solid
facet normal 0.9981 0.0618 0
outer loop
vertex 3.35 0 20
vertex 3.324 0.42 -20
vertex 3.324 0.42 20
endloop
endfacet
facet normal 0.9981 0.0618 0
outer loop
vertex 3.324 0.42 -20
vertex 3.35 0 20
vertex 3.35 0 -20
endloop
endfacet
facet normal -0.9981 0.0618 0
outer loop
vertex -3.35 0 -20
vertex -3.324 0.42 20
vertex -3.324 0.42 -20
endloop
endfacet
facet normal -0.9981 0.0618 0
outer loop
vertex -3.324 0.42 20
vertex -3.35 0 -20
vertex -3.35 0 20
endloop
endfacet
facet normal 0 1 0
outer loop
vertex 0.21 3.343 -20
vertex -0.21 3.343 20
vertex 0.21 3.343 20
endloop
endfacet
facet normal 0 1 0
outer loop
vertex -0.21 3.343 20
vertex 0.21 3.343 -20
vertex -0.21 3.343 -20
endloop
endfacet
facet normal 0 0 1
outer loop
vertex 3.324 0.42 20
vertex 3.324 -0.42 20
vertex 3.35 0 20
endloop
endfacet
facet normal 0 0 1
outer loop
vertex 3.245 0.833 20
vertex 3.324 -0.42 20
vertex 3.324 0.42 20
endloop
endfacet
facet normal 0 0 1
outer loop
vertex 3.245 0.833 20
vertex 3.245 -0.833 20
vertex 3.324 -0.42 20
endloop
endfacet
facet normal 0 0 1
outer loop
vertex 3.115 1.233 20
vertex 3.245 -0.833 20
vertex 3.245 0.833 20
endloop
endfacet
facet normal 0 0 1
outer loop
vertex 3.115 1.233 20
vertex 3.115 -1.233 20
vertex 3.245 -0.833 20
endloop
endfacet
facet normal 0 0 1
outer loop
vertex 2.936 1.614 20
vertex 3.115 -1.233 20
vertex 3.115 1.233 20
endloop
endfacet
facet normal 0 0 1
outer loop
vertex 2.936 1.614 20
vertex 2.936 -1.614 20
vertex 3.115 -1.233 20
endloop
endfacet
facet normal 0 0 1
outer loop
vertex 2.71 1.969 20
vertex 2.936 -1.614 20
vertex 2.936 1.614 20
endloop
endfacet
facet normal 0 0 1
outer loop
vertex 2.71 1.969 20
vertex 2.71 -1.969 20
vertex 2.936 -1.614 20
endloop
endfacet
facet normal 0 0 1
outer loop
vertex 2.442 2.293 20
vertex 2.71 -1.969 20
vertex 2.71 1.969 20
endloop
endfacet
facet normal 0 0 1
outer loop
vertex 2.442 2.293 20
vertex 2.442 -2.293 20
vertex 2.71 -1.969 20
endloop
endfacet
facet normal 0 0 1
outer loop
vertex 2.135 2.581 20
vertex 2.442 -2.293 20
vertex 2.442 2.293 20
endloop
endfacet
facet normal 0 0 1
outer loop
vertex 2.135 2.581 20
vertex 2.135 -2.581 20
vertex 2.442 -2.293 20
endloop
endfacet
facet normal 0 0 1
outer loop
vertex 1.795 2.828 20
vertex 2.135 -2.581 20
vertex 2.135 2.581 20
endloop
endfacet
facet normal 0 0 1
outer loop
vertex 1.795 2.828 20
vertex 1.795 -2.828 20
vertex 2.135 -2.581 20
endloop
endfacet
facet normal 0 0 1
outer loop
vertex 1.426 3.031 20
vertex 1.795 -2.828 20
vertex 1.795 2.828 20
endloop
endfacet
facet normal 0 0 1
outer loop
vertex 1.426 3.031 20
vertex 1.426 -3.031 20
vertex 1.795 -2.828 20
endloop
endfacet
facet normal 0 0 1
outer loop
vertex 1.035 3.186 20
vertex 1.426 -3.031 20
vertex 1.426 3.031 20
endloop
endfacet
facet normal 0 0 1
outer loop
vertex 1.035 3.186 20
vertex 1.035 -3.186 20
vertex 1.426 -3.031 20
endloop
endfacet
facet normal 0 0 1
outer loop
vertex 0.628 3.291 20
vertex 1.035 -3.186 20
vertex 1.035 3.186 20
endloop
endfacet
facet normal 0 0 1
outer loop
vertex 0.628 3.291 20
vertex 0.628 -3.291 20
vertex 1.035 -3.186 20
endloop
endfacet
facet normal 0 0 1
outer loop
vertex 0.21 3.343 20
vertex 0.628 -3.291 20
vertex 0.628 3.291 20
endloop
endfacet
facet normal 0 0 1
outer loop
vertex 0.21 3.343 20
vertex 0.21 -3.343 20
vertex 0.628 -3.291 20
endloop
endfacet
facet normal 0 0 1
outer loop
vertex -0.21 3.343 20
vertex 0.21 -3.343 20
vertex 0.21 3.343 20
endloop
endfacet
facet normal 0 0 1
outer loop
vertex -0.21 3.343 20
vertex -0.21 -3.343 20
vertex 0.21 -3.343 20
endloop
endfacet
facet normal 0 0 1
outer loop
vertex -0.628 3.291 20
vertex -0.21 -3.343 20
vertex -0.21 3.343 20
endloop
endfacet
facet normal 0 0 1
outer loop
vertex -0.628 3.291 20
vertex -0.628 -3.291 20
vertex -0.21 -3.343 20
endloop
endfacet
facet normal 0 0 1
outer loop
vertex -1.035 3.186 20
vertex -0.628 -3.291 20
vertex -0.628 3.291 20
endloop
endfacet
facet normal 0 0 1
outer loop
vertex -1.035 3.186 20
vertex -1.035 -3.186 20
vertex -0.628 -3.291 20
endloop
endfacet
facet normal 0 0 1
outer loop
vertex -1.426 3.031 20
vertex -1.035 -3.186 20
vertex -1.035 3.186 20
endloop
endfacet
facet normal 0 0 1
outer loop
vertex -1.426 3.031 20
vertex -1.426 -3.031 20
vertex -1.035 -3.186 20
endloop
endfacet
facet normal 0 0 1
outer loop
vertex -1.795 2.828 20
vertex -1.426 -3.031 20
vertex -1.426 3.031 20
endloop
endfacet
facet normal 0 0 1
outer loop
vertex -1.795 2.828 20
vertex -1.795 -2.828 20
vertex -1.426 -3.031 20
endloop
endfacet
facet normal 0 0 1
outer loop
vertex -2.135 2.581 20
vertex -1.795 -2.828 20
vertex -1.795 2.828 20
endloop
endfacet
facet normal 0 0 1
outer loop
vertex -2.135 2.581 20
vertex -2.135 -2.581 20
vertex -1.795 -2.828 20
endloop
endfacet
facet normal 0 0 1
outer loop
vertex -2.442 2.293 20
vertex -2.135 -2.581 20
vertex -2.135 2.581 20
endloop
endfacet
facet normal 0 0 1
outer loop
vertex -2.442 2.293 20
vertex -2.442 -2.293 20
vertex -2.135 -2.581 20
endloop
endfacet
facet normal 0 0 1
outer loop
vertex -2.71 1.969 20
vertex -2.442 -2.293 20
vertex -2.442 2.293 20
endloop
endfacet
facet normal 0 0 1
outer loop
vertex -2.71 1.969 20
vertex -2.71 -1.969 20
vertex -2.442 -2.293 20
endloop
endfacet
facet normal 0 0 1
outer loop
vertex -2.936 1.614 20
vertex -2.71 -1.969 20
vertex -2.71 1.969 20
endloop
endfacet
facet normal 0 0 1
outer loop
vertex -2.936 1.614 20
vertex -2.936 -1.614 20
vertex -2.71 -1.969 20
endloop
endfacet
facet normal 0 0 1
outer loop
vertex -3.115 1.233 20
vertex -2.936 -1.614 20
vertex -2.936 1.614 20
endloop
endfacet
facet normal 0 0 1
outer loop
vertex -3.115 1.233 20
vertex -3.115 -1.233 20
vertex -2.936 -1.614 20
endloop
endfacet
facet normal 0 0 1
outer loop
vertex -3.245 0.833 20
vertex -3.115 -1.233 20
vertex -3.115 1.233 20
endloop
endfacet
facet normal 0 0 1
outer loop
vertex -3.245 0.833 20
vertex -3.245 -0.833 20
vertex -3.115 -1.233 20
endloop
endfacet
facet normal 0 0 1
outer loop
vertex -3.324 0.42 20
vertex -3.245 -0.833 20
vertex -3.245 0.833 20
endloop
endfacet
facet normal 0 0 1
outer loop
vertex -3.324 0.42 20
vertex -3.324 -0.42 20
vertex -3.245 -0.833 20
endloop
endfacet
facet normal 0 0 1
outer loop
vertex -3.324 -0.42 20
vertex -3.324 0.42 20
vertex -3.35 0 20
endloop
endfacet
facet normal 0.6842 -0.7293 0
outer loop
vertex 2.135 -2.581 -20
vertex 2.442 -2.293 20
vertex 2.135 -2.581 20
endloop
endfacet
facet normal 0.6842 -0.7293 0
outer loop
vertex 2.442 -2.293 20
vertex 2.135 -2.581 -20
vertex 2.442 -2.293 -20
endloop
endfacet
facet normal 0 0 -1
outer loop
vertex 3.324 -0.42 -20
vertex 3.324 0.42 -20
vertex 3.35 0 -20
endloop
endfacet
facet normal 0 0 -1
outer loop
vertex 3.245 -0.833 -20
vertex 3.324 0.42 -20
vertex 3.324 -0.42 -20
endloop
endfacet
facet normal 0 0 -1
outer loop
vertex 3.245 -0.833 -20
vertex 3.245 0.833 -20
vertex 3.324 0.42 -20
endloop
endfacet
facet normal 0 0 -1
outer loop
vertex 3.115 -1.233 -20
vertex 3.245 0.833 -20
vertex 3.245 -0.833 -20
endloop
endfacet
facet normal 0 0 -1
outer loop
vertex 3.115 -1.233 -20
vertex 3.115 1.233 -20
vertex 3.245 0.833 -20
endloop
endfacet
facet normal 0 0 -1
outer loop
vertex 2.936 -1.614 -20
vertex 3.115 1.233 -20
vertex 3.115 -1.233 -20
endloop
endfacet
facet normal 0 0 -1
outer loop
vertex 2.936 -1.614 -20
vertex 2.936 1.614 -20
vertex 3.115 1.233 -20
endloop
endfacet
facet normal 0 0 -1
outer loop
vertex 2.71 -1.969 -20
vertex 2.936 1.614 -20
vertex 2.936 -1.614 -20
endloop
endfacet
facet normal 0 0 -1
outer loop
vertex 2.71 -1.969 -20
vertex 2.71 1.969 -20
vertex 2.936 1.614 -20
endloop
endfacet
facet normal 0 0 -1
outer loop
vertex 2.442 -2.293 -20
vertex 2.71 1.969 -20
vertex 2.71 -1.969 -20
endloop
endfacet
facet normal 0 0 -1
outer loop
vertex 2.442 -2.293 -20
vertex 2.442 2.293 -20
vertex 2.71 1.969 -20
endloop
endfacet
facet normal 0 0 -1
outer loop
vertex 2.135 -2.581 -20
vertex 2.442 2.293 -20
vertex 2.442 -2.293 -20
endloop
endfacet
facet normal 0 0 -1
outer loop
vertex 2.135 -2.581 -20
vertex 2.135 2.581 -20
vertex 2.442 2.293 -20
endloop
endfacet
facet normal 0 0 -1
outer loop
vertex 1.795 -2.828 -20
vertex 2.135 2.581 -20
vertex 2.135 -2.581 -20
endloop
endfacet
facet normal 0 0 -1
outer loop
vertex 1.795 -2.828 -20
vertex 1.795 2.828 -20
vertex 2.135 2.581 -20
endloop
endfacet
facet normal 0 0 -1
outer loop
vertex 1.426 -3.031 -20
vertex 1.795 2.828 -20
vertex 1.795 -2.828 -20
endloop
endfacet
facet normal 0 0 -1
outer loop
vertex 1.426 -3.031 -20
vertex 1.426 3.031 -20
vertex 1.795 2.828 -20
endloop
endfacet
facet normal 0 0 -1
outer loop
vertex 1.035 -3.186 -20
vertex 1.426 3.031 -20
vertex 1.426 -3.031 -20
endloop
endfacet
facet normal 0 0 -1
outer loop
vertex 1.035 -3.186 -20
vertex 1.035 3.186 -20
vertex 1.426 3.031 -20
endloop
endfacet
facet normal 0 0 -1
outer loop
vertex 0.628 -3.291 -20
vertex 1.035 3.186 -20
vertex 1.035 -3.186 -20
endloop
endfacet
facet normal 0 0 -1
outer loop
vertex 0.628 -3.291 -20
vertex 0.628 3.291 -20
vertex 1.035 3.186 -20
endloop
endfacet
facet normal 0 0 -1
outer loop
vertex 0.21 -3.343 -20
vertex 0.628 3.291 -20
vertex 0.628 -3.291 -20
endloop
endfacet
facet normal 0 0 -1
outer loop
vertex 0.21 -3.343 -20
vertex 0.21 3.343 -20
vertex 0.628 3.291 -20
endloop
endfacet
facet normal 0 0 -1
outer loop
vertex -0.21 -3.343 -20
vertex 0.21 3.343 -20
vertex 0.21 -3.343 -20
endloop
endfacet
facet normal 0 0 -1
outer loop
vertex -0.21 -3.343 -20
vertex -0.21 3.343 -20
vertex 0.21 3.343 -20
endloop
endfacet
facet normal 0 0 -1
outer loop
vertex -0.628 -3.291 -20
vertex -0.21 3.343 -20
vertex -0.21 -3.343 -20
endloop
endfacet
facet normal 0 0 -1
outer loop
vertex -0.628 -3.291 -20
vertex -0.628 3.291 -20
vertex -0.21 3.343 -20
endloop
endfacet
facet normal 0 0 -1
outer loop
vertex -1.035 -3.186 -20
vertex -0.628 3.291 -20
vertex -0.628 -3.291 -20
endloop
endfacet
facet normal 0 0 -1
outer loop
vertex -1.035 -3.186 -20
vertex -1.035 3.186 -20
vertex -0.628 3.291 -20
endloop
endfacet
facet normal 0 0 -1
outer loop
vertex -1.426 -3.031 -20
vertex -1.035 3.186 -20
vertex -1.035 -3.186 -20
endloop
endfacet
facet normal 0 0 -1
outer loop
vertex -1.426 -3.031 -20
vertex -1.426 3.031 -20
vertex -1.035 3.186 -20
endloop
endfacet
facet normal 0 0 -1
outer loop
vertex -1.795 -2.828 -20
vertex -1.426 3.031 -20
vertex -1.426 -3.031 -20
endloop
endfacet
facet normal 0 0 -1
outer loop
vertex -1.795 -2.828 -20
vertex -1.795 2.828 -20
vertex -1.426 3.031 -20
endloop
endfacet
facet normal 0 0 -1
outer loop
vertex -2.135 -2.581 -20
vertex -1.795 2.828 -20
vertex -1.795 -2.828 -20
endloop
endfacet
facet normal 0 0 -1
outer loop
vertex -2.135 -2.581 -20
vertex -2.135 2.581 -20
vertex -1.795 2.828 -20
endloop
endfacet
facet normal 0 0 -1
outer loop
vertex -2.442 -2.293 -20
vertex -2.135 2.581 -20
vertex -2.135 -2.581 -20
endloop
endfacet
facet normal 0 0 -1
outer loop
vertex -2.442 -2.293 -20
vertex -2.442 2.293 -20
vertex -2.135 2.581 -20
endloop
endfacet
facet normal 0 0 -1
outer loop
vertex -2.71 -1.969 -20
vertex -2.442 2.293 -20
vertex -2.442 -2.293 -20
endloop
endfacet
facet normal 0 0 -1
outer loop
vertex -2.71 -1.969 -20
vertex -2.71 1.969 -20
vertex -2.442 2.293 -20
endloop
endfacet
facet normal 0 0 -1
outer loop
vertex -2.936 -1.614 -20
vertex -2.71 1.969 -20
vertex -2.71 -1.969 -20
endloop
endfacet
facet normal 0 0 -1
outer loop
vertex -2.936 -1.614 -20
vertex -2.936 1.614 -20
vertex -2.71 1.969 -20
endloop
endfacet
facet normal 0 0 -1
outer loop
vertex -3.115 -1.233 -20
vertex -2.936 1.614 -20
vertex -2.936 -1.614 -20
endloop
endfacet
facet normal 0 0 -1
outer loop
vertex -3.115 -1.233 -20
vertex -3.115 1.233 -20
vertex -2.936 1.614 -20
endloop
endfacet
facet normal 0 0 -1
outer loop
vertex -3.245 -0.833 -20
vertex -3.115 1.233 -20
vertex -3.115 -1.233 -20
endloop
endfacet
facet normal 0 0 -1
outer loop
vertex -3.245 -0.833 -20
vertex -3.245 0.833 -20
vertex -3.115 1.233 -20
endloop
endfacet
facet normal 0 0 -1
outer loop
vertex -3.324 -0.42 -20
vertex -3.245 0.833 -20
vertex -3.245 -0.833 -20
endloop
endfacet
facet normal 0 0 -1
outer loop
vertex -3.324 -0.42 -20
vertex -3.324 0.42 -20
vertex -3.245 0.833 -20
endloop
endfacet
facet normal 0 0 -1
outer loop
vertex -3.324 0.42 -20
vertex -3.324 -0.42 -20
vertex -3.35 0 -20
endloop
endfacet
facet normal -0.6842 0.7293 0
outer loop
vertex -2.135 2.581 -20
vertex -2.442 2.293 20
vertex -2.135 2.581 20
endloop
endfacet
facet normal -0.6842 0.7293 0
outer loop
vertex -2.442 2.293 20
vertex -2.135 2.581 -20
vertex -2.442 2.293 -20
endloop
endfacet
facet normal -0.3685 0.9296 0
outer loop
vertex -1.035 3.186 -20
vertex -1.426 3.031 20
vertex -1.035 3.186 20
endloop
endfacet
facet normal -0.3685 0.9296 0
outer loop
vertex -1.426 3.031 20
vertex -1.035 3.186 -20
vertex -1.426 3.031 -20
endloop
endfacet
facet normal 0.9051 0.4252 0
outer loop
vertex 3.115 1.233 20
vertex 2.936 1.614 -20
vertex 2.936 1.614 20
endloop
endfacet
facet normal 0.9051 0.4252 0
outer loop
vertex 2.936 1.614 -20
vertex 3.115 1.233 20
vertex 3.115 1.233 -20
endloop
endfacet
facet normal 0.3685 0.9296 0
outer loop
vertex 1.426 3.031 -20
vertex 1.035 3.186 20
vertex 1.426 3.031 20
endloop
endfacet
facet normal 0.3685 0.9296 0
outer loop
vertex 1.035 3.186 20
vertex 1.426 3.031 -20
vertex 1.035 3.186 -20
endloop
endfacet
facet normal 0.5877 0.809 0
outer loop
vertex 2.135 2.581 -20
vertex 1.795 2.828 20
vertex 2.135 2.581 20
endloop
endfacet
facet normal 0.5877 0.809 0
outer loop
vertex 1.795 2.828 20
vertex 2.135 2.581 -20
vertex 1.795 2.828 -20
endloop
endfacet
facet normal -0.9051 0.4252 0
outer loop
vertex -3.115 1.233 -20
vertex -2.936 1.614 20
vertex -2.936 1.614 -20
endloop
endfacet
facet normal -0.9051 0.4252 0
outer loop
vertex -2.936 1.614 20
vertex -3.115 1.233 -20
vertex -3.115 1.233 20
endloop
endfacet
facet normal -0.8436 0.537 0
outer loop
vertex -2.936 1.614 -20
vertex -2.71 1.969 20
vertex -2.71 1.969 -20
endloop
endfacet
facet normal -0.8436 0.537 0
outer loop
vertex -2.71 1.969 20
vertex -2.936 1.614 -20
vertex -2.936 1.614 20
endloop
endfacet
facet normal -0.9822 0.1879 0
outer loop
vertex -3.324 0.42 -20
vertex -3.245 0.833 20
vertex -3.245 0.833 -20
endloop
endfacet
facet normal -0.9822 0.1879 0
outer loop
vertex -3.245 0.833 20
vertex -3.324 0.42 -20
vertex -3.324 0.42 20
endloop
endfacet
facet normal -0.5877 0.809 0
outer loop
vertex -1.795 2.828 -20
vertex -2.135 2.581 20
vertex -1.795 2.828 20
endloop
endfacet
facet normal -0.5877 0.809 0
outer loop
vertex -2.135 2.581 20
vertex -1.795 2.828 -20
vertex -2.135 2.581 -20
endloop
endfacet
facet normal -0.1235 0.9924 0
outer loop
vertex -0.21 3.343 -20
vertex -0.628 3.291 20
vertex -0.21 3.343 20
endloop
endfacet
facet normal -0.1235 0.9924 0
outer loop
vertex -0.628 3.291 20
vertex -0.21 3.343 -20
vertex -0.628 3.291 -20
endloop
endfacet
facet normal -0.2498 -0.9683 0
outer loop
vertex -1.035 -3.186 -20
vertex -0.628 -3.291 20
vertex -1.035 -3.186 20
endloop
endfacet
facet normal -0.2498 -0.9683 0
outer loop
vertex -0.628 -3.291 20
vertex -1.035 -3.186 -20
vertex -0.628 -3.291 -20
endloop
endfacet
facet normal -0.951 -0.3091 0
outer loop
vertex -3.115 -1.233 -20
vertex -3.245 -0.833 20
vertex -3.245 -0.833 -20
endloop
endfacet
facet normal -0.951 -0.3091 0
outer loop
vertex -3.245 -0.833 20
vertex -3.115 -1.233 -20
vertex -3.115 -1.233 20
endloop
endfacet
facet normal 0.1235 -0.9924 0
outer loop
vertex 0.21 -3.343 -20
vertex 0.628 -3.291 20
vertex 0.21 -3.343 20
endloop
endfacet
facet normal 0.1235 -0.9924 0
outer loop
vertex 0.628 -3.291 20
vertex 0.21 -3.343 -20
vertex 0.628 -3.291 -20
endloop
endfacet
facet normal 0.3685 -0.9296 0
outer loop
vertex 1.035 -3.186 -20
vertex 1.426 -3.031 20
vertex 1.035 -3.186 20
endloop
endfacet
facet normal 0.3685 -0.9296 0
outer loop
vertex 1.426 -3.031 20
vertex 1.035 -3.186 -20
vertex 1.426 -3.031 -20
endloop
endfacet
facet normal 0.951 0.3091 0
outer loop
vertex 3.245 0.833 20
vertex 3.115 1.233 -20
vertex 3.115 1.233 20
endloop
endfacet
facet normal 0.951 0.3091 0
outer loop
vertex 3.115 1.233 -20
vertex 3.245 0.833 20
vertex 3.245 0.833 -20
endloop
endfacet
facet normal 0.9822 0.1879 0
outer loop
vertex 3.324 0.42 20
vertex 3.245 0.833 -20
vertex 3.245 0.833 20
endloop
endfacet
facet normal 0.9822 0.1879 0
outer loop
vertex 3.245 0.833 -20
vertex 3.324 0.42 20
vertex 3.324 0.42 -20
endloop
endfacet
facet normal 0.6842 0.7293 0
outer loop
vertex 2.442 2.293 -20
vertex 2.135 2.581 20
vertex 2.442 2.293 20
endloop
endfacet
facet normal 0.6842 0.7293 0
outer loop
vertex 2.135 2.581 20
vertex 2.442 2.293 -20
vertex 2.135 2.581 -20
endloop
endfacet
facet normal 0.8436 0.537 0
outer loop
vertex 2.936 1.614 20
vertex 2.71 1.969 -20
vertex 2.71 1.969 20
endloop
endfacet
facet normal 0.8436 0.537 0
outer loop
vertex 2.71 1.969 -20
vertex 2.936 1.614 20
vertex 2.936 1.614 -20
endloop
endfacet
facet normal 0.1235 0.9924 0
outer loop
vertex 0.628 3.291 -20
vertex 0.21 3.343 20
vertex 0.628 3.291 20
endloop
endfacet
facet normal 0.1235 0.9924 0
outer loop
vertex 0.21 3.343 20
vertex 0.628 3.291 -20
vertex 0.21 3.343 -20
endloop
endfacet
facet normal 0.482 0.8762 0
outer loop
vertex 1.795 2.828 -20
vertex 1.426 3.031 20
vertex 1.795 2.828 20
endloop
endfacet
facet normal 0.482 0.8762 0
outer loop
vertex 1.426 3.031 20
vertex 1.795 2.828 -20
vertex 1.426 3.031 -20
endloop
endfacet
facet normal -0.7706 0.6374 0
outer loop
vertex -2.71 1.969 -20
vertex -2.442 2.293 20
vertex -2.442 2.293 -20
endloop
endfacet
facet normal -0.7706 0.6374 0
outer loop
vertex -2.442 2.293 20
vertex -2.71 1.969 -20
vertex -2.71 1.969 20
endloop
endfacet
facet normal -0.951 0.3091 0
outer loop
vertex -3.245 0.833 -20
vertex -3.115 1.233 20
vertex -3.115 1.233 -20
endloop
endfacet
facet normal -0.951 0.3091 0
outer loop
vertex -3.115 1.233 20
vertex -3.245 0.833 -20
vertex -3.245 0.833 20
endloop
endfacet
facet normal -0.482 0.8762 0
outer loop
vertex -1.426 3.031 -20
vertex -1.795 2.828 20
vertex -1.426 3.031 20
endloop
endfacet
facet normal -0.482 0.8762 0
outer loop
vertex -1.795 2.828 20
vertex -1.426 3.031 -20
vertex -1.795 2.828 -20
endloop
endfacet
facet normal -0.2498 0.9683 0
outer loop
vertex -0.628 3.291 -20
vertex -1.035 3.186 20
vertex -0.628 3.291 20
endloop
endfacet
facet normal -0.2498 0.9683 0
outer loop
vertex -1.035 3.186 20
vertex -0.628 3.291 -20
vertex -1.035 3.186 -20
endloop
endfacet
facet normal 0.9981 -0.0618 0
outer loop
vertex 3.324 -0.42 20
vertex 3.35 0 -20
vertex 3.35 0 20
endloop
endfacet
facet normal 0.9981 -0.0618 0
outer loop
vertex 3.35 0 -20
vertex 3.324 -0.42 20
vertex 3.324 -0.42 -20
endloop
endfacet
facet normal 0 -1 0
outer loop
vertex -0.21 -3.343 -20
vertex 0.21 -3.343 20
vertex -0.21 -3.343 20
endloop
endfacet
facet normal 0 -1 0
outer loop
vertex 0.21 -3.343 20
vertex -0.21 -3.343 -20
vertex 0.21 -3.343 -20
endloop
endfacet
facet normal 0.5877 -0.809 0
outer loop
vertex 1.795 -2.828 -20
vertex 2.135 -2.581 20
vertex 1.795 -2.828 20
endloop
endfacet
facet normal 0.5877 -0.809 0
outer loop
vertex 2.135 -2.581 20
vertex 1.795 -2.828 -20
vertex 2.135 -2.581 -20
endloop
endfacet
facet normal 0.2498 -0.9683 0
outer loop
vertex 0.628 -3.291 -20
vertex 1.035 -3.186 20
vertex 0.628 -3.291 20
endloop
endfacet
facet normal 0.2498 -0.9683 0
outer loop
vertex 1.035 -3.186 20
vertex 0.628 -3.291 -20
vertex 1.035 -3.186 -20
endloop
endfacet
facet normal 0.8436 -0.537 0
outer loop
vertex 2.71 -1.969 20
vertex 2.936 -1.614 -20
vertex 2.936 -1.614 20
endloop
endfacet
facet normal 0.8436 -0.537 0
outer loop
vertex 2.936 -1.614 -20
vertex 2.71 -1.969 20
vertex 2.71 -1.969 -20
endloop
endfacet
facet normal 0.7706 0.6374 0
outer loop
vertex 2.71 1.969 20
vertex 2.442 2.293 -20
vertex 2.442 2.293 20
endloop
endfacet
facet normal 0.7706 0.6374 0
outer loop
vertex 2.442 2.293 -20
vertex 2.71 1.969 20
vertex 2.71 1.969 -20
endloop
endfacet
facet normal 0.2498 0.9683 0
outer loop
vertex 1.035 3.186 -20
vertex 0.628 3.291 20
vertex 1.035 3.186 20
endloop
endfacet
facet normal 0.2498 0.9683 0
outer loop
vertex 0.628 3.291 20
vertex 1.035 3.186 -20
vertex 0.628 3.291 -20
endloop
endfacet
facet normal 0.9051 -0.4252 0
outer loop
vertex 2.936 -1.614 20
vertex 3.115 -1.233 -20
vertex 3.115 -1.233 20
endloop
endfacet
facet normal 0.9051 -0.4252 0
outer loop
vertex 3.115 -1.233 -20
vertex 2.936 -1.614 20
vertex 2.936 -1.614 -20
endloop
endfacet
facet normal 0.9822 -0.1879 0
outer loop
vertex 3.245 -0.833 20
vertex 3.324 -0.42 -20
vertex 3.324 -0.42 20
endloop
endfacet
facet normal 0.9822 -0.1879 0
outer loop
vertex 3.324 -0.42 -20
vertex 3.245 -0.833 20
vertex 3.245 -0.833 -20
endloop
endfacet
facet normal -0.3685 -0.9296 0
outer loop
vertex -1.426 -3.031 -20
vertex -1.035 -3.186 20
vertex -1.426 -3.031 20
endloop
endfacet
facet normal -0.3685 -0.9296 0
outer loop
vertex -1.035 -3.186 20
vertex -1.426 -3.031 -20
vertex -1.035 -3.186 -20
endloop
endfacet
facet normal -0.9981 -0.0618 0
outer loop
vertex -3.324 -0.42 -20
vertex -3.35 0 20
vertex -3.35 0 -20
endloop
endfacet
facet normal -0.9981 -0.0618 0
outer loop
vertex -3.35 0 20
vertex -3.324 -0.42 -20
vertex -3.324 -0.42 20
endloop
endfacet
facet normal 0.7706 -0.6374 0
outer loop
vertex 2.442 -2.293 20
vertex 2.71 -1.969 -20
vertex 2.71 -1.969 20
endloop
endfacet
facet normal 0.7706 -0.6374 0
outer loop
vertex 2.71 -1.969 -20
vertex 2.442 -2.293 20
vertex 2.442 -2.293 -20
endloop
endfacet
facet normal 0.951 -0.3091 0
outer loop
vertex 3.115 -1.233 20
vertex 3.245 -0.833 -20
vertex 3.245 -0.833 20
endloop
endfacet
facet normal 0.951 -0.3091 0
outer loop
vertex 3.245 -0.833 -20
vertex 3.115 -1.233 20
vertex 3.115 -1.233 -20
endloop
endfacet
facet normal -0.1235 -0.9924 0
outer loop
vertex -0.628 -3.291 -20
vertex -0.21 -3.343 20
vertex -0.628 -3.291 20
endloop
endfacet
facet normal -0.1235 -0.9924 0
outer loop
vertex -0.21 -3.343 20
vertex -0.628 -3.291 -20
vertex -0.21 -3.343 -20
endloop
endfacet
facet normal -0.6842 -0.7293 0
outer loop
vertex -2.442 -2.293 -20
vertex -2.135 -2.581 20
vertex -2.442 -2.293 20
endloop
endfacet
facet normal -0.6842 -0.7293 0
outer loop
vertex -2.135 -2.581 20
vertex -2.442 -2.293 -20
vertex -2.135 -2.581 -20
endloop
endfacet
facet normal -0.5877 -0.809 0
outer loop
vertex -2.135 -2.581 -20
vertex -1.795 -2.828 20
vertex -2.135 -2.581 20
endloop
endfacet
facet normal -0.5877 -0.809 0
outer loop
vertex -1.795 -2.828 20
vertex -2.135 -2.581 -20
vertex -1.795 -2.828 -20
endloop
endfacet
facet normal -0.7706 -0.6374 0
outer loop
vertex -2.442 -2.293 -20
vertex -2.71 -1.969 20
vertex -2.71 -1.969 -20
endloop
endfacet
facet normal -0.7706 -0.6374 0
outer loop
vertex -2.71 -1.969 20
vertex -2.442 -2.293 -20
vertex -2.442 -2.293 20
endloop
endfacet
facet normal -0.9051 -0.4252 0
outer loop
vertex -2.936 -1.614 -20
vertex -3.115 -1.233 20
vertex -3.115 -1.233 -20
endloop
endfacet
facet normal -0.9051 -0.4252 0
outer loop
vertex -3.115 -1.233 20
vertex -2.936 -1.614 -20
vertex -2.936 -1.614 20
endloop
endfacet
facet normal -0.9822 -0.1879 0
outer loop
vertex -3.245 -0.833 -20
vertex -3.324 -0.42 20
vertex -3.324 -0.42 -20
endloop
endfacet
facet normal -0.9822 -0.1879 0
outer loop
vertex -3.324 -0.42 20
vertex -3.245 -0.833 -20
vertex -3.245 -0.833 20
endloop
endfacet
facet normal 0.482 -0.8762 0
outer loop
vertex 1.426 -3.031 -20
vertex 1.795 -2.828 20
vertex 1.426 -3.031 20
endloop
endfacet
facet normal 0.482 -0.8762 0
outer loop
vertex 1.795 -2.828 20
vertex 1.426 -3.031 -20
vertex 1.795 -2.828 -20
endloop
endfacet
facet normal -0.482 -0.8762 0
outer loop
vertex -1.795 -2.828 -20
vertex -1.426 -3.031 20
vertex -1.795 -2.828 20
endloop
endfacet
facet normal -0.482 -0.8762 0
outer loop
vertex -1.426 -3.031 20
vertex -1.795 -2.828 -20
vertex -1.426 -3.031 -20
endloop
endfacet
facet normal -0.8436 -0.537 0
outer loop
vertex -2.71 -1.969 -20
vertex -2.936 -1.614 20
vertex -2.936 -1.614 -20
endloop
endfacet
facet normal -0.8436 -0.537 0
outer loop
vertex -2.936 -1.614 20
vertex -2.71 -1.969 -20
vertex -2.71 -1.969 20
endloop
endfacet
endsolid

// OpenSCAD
$fn = 50;


difference() {
	union() {
		translate(v = [0, 0, -20.0000000000]) {
			cylinder(h = 40, r = 3.3500000000);
		}
	}
	union() {
		translate(v = [0, 0, -100.0000000000]) {
			cylinder(h = 200, r = 0);
		}
	}
}
